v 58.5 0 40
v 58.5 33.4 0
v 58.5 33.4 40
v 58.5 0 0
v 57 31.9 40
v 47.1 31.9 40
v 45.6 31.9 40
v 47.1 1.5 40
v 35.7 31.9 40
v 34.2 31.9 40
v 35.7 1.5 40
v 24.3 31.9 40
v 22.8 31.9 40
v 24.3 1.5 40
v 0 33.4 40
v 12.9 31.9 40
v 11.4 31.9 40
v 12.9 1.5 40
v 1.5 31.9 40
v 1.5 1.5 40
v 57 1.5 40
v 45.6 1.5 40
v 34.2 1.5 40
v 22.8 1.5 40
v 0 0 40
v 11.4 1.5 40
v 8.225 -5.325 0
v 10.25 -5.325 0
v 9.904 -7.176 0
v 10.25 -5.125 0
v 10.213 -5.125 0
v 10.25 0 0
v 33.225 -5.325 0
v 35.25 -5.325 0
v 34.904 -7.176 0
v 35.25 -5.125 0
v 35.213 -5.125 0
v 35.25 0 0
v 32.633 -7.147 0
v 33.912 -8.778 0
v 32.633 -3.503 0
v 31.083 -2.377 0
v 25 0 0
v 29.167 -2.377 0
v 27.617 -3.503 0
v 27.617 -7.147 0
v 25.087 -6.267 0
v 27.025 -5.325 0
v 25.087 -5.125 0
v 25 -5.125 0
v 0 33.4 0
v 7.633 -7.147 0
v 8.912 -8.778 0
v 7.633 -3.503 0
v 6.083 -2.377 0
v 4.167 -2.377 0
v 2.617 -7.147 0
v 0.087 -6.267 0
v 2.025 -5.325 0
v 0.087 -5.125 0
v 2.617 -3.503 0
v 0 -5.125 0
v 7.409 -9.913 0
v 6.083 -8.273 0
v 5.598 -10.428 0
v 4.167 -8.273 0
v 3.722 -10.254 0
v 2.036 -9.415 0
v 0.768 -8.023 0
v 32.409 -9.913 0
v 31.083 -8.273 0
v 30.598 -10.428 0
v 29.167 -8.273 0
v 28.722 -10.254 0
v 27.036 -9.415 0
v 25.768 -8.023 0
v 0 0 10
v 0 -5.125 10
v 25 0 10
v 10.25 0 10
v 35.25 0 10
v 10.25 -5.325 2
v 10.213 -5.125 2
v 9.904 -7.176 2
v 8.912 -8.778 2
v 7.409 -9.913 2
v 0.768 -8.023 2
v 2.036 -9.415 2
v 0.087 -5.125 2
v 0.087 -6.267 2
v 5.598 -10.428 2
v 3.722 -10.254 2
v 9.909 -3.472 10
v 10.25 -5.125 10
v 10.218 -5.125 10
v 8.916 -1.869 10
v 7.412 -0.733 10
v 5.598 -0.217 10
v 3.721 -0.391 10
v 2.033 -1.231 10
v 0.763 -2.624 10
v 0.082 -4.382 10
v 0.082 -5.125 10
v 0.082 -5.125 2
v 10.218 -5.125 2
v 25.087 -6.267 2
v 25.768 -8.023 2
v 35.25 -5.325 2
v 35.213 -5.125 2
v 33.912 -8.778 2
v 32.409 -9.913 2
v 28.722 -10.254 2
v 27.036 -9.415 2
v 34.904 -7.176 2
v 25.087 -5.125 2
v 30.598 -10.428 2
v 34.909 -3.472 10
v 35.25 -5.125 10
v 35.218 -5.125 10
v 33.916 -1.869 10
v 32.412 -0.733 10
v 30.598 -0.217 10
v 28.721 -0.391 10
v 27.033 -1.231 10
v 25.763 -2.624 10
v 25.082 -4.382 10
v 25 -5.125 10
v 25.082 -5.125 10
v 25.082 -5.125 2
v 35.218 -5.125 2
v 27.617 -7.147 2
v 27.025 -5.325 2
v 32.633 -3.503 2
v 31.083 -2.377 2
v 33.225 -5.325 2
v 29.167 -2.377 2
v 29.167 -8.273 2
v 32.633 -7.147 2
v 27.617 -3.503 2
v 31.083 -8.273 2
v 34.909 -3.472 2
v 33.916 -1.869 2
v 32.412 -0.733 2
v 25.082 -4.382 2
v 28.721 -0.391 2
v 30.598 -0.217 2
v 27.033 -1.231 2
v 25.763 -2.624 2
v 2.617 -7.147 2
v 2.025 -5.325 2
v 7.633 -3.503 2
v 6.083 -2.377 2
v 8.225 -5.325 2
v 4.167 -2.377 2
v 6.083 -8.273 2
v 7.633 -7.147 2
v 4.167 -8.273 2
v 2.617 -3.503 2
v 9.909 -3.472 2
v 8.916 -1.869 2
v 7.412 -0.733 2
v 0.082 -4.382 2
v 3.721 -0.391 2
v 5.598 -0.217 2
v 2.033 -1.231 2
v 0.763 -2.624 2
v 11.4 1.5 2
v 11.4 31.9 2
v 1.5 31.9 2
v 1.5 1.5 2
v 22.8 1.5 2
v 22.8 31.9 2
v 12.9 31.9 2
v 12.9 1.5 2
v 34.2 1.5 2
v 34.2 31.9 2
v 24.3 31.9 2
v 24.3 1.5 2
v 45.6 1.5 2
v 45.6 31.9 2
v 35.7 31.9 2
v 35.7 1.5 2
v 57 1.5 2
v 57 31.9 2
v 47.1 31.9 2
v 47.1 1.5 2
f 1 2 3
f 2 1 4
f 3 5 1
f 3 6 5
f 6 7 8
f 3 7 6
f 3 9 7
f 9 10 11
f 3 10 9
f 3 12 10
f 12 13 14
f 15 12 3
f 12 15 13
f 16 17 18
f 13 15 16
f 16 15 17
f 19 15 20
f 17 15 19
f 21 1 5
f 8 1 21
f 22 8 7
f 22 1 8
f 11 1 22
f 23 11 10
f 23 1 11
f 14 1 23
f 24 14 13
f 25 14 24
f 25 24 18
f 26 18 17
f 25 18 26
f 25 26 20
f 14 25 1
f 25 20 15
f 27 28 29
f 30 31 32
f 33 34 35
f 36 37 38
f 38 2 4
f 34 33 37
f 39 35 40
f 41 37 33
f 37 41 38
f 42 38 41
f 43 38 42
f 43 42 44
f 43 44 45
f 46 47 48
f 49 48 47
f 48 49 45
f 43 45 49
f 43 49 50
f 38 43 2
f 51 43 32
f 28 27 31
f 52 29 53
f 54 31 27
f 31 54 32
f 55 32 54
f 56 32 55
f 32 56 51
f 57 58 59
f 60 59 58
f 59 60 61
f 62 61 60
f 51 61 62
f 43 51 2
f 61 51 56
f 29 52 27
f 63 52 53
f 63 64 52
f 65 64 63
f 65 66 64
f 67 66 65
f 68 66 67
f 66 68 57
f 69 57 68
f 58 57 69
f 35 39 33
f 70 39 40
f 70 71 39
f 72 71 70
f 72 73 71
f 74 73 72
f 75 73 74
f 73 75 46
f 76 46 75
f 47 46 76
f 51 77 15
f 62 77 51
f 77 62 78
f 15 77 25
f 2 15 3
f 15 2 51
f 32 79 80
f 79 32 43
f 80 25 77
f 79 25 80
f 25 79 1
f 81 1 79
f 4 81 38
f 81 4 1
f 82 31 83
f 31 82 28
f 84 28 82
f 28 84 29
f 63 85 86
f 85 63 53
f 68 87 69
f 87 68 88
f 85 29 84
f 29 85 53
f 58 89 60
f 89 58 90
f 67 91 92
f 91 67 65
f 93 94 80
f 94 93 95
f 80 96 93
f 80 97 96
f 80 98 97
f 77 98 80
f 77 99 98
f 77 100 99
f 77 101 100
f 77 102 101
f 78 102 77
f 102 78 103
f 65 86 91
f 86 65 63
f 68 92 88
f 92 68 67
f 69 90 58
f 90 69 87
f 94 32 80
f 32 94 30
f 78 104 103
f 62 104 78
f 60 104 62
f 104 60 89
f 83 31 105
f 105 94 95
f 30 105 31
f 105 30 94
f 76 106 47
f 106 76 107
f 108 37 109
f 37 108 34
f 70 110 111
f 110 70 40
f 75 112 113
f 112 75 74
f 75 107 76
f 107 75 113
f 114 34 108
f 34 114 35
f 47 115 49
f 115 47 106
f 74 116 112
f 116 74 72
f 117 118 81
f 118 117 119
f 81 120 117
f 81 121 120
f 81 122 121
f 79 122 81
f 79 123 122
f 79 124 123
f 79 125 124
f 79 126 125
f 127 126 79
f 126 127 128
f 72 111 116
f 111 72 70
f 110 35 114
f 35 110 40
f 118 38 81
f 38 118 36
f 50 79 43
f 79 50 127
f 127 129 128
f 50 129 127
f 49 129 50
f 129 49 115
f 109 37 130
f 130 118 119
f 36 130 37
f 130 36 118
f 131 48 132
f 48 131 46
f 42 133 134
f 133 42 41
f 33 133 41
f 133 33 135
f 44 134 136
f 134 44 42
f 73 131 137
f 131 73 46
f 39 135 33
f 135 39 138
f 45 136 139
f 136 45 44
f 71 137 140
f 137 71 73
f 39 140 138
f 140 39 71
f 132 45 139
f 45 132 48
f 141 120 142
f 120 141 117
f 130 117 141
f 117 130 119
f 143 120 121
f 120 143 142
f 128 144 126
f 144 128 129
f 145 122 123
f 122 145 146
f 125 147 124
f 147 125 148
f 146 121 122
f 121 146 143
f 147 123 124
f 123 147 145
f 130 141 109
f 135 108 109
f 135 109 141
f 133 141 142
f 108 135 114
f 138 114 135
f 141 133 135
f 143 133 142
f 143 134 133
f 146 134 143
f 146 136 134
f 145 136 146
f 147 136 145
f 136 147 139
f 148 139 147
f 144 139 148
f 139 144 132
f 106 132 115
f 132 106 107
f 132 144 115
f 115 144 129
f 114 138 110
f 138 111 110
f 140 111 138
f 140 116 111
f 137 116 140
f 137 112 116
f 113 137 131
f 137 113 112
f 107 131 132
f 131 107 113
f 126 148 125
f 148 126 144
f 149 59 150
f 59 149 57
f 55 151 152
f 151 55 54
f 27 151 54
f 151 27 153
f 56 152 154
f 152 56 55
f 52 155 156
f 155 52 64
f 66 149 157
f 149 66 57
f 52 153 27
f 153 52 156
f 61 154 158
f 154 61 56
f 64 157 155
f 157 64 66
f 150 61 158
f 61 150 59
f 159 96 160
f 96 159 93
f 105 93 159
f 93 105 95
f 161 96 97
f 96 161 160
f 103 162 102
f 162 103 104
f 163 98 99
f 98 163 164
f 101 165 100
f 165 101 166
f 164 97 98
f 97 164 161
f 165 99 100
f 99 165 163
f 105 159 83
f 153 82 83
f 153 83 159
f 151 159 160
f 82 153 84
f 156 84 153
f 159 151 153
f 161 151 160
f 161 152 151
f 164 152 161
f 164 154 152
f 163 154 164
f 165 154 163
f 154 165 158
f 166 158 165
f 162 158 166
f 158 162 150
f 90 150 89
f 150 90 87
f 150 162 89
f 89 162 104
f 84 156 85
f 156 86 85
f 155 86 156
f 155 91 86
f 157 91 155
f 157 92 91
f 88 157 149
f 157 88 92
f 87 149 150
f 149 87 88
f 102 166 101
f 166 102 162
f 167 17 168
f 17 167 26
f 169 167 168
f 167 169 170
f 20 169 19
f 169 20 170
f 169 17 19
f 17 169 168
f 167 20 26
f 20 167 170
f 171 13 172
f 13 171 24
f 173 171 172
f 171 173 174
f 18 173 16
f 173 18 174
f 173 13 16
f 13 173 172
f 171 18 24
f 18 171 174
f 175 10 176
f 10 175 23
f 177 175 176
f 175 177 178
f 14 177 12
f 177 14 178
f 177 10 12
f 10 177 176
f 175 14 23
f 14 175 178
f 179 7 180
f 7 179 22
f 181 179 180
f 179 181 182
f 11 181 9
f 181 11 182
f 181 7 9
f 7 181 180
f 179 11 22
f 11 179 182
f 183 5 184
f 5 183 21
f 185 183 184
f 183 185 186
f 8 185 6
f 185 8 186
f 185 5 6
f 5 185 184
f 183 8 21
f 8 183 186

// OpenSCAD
// Filters slides holder
slider_h = 9.5;
FDM_offset = 0.2;

module SlidesCase() {
    slider_hf = slider_h + 2*FDM_offset;
    difference() {
        union() {
            cube([9+slider_hf*5,
                3+30+2*FDM_offset,
                40]);
            
            translate([10.25/2,-10.25/2-FDM_offset,0])
            cylinder(d=10.25, h=10);
            translate([0,-10.25/2,0])
                cube([10.25,10.25/2,10]);
            
            translate([10.25/2+25,-10.25/2-FDM_offset,0])
            cylinder(d=10.25, h=10);
            translate([25,-10.25/2,0])
                cube([10.25,10.25/2,10]);
        }
            
        translate([1.5,1.5,2])
        cube([slider_hf,
              30+2*FDM_offset,
              60]);       
        translate([1.5*2+slider_hf,1.5,2])
        cube([slider_hf,
              30+2*FDM_offset,
              60]);
        translate([1.5*3+slider_hf*2,1.5,2])
        cube([slider_hf,
              30+2*FDM_offset,
              60]);
        translate([1.5*4+slider_hf*3,1.5,2])
        cube([slider_hf,
              30+2*FDM_offset,
              60]);
        translate([1.5*5+slider_hf*4,1.5,2])
        cube([slider_hf,
              30+2*FDM_offset,
              50]);
        
        translate([10.25/2+25,-10.25/2-FDM_offset,0]){
            cylinder(d = 6+FDM_offset,h = 20);
            translate([0,0,2])
            cylinder(d = 10.26,h = 20);
        }
        translate([10.25/2,-10.25/2-FDM_offset,0]){
            cylinder(d = 6+FDM_offset,h = 20);
            translate([0,0,2])
            cylinder(d = 10.26,h = 20);
        }
    }
}

SlidesCase();
